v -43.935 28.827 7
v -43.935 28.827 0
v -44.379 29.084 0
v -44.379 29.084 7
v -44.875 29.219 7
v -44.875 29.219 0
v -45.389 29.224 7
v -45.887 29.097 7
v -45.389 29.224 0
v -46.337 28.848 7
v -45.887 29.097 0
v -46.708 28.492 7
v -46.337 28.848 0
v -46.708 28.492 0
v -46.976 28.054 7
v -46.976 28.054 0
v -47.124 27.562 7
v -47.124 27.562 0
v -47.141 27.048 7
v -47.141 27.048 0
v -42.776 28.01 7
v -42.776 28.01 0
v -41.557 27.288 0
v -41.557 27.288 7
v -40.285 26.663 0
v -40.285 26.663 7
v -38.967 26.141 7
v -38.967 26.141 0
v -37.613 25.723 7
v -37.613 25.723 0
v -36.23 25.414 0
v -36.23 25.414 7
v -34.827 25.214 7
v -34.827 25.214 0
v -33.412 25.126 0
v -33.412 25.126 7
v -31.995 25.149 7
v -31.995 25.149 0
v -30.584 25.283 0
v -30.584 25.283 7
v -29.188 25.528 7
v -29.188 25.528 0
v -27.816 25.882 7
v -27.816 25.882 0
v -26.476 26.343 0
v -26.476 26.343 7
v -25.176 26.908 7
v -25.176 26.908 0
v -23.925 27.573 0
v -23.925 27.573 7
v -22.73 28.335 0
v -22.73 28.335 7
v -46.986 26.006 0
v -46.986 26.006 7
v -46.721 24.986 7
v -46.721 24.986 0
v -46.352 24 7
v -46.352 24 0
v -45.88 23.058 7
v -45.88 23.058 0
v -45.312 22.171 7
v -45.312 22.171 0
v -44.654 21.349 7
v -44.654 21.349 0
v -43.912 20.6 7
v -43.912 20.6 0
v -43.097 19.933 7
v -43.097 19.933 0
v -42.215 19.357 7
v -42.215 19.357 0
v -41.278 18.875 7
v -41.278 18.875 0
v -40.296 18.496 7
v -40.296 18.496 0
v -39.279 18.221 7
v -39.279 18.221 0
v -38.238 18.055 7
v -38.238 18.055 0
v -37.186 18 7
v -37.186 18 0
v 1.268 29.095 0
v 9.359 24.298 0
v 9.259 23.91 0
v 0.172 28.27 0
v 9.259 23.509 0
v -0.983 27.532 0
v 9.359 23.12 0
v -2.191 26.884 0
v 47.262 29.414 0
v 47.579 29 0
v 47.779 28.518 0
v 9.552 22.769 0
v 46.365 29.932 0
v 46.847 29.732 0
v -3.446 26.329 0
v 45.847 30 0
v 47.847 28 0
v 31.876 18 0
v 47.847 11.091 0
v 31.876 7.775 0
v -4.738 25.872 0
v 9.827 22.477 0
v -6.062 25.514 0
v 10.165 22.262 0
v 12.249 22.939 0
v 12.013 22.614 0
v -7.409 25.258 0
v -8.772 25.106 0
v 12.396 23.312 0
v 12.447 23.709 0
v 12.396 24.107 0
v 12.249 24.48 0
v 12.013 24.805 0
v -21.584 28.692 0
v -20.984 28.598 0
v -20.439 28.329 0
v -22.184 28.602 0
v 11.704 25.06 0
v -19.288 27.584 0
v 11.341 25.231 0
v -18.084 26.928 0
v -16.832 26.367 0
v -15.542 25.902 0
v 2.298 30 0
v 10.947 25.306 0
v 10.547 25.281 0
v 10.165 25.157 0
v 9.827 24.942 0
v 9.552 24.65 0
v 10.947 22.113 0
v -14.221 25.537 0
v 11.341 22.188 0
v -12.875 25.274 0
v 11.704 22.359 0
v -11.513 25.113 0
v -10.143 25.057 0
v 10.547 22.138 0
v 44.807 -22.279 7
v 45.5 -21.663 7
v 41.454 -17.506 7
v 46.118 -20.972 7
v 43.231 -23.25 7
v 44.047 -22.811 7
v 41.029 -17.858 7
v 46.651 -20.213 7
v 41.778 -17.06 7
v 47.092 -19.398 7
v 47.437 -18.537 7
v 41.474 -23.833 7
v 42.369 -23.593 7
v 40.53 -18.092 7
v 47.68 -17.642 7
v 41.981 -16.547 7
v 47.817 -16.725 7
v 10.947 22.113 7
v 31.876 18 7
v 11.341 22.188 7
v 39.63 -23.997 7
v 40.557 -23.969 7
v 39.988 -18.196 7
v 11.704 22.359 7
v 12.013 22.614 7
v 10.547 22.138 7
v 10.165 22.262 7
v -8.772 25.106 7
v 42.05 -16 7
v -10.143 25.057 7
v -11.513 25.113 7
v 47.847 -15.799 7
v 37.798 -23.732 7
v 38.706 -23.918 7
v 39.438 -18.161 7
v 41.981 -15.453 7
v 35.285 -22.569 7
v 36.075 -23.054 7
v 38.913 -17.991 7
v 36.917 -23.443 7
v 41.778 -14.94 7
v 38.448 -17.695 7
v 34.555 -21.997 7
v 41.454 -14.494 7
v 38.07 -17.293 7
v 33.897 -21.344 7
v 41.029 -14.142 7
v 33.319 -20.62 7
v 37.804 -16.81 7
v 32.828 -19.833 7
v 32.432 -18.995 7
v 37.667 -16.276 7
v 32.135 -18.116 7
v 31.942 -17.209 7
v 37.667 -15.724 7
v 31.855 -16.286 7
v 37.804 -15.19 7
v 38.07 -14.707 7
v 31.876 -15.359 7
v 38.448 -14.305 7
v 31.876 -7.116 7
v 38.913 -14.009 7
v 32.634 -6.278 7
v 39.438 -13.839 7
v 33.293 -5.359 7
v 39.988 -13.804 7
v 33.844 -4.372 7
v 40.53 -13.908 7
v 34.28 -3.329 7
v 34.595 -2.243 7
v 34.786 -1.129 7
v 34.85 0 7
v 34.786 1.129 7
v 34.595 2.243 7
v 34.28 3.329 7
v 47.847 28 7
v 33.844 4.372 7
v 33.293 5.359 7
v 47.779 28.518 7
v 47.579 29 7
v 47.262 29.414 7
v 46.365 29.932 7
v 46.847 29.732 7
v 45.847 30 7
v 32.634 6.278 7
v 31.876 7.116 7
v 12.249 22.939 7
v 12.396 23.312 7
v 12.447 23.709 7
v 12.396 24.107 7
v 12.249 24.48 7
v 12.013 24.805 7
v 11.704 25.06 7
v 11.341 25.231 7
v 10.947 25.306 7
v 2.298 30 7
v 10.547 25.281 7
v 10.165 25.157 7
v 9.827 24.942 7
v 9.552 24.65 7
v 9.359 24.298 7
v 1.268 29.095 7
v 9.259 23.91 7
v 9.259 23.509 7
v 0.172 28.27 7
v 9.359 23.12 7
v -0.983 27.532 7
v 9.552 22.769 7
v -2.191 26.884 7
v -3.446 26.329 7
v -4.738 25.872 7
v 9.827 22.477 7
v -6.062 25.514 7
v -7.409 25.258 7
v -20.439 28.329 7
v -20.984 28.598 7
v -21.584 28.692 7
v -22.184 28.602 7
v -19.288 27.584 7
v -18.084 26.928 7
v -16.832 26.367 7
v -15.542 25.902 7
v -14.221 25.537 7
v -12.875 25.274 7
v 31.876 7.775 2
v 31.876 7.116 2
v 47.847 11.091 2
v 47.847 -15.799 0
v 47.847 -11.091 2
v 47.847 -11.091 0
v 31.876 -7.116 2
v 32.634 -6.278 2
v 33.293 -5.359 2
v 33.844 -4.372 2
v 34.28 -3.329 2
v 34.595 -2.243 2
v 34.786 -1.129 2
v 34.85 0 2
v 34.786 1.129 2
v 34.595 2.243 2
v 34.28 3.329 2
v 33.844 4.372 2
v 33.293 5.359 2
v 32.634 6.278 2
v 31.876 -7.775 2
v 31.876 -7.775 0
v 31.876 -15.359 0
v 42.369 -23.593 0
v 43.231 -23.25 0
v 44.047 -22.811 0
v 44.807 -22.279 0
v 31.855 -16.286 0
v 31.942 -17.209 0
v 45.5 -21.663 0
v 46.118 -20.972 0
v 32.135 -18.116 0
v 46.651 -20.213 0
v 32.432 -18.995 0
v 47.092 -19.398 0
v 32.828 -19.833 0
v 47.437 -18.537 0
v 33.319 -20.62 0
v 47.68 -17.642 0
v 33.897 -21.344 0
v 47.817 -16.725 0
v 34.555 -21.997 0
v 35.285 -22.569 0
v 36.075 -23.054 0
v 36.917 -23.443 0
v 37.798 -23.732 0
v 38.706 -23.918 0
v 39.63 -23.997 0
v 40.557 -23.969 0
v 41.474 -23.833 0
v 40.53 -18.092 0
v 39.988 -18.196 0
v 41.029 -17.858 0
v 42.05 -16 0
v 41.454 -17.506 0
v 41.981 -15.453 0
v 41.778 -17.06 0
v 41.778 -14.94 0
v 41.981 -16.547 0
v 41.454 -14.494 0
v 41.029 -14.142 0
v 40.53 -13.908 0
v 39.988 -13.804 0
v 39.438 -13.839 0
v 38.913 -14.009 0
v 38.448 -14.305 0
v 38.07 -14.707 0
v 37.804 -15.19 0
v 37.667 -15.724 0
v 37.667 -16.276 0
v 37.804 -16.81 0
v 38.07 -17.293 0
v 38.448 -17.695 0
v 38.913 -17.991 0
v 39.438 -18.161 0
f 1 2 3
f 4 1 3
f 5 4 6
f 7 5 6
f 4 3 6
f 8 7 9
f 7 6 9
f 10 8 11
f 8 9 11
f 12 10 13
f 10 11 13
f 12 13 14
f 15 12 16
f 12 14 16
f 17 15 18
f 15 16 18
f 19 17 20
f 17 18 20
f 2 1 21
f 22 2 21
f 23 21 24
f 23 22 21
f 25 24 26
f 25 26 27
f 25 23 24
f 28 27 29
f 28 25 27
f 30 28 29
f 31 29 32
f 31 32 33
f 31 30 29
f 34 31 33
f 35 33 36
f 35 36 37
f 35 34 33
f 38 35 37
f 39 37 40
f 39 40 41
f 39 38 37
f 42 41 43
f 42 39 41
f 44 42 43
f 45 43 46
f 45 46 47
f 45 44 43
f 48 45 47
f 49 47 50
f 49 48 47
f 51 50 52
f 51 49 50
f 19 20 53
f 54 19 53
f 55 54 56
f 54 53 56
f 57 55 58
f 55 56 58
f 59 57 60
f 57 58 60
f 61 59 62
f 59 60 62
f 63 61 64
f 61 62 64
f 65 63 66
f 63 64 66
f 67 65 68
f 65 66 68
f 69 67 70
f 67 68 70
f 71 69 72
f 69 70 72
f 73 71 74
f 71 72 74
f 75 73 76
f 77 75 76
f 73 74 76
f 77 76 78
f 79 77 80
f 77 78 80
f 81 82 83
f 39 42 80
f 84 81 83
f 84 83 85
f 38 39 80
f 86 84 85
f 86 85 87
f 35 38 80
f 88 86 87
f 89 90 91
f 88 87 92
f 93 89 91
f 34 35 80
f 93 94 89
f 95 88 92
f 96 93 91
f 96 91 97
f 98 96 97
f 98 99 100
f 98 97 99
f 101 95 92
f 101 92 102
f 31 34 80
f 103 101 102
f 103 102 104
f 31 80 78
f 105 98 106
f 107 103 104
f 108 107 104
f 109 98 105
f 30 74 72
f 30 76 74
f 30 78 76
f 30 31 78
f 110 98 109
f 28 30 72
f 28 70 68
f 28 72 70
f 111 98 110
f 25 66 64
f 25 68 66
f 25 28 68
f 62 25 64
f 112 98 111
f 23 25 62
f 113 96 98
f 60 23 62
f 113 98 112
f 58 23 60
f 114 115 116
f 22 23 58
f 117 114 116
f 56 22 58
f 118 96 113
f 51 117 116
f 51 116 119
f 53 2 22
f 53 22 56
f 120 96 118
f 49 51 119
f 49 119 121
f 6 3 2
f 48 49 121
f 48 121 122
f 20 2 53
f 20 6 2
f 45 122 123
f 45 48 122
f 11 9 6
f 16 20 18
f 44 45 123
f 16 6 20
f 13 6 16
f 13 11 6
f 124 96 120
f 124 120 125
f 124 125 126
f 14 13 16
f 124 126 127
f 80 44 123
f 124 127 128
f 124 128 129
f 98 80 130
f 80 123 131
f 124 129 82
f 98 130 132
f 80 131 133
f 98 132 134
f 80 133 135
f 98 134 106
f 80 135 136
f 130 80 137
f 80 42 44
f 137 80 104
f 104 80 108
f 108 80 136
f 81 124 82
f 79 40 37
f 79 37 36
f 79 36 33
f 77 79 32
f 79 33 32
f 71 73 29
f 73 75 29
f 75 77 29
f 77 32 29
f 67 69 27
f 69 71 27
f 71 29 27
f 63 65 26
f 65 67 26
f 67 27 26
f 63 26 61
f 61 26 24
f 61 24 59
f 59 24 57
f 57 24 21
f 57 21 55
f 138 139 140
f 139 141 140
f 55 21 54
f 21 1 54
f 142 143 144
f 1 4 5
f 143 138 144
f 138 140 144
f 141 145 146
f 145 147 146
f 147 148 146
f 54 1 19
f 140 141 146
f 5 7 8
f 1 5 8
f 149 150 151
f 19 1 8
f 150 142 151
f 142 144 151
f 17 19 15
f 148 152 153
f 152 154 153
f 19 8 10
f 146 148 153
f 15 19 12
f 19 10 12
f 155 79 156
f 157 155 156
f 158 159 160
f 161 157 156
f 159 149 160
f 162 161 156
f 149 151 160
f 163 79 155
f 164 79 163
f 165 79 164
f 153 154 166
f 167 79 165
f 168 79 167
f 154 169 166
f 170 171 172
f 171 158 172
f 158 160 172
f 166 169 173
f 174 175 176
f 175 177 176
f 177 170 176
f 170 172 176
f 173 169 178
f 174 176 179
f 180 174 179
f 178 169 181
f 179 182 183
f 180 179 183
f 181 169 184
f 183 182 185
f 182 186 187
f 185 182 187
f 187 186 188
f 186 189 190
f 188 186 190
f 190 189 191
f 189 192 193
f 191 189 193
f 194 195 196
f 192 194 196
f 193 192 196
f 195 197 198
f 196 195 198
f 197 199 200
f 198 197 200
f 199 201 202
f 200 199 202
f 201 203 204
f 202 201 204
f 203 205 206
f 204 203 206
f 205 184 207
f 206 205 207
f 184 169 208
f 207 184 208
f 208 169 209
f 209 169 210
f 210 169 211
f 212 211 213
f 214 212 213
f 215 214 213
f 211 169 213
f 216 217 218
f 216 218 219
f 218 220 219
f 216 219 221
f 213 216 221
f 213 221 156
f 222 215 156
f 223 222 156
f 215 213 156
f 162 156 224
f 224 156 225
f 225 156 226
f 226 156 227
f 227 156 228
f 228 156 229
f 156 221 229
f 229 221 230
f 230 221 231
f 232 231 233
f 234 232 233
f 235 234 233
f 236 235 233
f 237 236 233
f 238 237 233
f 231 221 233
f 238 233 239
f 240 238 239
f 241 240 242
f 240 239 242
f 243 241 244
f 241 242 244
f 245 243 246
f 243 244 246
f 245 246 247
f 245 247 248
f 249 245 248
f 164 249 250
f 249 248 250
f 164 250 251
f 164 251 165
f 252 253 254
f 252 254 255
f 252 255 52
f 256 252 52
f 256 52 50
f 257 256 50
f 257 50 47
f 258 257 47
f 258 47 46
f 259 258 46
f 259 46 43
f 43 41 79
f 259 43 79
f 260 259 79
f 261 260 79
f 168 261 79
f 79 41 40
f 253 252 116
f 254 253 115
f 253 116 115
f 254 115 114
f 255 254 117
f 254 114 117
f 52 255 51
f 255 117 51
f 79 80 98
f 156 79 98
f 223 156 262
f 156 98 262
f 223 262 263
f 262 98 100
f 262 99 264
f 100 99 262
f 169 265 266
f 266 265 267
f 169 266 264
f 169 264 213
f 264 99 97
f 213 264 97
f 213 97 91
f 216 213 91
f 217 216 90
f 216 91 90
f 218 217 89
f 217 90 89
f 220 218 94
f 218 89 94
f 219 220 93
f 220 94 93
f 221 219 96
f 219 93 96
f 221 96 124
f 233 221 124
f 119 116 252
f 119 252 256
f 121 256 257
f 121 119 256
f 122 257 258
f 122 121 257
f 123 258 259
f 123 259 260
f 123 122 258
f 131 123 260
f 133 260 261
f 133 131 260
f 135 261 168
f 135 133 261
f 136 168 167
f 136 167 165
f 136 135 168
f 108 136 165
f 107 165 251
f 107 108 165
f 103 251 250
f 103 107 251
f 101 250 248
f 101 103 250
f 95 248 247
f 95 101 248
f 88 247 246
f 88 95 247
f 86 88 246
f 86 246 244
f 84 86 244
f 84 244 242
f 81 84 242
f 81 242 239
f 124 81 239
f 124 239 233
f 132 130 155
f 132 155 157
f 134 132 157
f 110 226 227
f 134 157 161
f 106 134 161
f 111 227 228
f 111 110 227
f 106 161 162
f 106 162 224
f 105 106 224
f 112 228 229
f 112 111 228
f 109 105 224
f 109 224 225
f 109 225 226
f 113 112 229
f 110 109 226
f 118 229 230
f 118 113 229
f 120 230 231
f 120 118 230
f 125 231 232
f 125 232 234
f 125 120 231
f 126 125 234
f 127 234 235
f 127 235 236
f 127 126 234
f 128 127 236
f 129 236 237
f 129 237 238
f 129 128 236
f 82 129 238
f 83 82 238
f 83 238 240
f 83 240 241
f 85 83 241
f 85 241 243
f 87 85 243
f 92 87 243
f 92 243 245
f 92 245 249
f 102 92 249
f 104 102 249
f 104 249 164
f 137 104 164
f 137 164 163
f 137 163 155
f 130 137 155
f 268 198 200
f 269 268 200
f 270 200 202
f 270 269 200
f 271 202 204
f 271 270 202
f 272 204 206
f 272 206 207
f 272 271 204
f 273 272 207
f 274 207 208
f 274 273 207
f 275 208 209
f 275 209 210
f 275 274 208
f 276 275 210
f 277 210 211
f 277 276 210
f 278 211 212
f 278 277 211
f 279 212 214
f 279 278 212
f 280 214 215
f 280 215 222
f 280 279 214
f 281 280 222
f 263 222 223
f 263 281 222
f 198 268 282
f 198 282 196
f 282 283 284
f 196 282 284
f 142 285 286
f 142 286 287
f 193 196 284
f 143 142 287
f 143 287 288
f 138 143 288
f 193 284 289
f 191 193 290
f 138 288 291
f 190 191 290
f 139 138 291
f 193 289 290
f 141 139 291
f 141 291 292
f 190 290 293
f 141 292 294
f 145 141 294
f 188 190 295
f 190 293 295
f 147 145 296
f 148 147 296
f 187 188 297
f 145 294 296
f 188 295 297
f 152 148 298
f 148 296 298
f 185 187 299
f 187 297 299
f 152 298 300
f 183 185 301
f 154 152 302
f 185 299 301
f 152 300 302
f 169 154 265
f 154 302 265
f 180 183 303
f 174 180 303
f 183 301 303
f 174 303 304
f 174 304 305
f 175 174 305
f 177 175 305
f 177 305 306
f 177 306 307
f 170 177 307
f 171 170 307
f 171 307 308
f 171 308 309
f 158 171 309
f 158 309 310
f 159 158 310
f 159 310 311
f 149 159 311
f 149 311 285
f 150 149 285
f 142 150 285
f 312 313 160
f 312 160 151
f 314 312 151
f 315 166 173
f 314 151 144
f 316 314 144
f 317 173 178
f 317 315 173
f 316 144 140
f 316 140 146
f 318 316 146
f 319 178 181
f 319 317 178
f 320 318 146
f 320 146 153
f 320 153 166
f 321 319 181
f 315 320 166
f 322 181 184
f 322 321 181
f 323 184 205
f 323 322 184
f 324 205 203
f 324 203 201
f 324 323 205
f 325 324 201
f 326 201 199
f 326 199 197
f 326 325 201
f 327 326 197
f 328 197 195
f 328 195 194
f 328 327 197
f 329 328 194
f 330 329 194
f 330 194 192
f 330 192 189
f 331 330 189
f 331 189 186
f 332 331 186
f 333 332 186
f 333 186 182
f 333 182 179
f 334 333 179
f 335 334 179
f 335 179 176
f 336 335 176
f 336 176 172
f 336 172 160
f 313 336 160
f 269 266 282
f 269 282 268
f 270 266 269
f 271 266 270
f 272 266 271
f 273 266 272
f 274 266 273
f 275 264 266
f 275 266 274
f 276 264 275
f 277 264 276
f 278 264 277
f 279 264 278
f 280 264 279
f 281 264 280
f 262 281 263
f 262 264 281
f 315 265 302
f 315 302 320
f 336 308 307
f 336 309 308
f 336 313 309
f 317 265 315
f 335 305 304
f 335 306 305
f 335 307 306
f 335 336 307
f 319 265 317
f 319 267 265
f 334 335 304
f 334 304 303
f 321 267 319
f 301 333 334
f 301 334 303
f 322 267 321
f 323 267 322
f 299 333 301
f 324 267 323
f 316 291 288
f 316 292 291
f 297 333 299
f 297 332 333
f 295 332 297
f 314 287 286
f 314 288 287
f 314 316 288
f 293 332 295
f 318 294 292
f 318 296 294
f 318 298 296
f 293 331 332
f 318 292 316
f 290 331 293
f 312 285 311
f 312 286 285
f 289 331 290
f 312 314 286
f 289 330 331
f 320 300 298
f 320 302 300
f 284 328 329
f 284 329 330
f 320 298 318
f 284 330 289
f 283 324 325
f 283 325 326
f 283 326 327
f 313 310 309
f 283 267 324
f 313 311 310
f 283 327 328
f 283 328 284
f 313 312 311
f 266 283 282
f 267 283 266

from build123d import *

# Parameters (mm, degrees)
SKETCH_R     = 2.2
SKETCH_R_2   = 1.6
PAD_DEPTH    = 7
POCKET_DEPTH = 2


with BuildPart() as part:
    # Sketch → Pad (new body)
    with BuildSketch(Plane.XY):
        with BuildLine():
            Line((-37.186391, 18), (31.875645, 18))
            Line((31.875645, 18), (31.875645, 7.116152))
            ThreePointArc((31.875645, -7.116152), (34.849951, 0), (31.875645, 7.116152))
            Line((31.875645, -7.116152), (31.875645, -15.359342))
            ThreePointArc((31.875645, -15.359342), (39.629949, -23.996974), (47.847419, -15.798736))
            Line((47.847419, -15.798736), (47.847419, 28))
            ThreePointArc((47.847419, 28), (47.261632, 29.414214), (45.847419, 30))
            Line((45.847419, 30), (2.298191, 30))
            ThreePointArc((-20.439447, 28.328622), (-8.772276, 25.105501), (2.298191, 30))
            ThreePointArc((-20.439447, 28.328622), (-21.583605, 28.69212), (-22.729772, 28.335007))
            ThreePointArc((-43.934553, 28.826581), (-33.412258, 25.125755), (-22.729772, 28.335007))
            ThreePointArc((-43.934553, 28.826581), (-46.120226, 28.987251), (-47.140964, 27.047901))
            ThreePointArc((-47.140964, 27.047901), (-43.912423, 20.599967), (-37.186391, 18))
        make_face()
        with Locations((39.849951, -16)):
            Circle(SKETCH_R, mode=Mode.SUBTRACT)
        with Locations((10.846568, 23.709484)):
            Circle(SKETCH_R_2, mode=Mode.SUBTRACT)
    extrude(amount=PAD_DEPTH)

    # Sketch001 → Pocket (cut)
    with BuildSketch(Plane(origin=(0, 0, 0), x_dir=(1, 0, 0), z_dir=(0, 0, -1))):
        Polygon((8.880411, 3), (52.827053, 12.125178), (52.827053, -12.125178), (8.880411, -3), align=None)
    extrude(amount=-POCKET_DEPTH, mode=Mode.SUBTRACT)


solid = part.part
